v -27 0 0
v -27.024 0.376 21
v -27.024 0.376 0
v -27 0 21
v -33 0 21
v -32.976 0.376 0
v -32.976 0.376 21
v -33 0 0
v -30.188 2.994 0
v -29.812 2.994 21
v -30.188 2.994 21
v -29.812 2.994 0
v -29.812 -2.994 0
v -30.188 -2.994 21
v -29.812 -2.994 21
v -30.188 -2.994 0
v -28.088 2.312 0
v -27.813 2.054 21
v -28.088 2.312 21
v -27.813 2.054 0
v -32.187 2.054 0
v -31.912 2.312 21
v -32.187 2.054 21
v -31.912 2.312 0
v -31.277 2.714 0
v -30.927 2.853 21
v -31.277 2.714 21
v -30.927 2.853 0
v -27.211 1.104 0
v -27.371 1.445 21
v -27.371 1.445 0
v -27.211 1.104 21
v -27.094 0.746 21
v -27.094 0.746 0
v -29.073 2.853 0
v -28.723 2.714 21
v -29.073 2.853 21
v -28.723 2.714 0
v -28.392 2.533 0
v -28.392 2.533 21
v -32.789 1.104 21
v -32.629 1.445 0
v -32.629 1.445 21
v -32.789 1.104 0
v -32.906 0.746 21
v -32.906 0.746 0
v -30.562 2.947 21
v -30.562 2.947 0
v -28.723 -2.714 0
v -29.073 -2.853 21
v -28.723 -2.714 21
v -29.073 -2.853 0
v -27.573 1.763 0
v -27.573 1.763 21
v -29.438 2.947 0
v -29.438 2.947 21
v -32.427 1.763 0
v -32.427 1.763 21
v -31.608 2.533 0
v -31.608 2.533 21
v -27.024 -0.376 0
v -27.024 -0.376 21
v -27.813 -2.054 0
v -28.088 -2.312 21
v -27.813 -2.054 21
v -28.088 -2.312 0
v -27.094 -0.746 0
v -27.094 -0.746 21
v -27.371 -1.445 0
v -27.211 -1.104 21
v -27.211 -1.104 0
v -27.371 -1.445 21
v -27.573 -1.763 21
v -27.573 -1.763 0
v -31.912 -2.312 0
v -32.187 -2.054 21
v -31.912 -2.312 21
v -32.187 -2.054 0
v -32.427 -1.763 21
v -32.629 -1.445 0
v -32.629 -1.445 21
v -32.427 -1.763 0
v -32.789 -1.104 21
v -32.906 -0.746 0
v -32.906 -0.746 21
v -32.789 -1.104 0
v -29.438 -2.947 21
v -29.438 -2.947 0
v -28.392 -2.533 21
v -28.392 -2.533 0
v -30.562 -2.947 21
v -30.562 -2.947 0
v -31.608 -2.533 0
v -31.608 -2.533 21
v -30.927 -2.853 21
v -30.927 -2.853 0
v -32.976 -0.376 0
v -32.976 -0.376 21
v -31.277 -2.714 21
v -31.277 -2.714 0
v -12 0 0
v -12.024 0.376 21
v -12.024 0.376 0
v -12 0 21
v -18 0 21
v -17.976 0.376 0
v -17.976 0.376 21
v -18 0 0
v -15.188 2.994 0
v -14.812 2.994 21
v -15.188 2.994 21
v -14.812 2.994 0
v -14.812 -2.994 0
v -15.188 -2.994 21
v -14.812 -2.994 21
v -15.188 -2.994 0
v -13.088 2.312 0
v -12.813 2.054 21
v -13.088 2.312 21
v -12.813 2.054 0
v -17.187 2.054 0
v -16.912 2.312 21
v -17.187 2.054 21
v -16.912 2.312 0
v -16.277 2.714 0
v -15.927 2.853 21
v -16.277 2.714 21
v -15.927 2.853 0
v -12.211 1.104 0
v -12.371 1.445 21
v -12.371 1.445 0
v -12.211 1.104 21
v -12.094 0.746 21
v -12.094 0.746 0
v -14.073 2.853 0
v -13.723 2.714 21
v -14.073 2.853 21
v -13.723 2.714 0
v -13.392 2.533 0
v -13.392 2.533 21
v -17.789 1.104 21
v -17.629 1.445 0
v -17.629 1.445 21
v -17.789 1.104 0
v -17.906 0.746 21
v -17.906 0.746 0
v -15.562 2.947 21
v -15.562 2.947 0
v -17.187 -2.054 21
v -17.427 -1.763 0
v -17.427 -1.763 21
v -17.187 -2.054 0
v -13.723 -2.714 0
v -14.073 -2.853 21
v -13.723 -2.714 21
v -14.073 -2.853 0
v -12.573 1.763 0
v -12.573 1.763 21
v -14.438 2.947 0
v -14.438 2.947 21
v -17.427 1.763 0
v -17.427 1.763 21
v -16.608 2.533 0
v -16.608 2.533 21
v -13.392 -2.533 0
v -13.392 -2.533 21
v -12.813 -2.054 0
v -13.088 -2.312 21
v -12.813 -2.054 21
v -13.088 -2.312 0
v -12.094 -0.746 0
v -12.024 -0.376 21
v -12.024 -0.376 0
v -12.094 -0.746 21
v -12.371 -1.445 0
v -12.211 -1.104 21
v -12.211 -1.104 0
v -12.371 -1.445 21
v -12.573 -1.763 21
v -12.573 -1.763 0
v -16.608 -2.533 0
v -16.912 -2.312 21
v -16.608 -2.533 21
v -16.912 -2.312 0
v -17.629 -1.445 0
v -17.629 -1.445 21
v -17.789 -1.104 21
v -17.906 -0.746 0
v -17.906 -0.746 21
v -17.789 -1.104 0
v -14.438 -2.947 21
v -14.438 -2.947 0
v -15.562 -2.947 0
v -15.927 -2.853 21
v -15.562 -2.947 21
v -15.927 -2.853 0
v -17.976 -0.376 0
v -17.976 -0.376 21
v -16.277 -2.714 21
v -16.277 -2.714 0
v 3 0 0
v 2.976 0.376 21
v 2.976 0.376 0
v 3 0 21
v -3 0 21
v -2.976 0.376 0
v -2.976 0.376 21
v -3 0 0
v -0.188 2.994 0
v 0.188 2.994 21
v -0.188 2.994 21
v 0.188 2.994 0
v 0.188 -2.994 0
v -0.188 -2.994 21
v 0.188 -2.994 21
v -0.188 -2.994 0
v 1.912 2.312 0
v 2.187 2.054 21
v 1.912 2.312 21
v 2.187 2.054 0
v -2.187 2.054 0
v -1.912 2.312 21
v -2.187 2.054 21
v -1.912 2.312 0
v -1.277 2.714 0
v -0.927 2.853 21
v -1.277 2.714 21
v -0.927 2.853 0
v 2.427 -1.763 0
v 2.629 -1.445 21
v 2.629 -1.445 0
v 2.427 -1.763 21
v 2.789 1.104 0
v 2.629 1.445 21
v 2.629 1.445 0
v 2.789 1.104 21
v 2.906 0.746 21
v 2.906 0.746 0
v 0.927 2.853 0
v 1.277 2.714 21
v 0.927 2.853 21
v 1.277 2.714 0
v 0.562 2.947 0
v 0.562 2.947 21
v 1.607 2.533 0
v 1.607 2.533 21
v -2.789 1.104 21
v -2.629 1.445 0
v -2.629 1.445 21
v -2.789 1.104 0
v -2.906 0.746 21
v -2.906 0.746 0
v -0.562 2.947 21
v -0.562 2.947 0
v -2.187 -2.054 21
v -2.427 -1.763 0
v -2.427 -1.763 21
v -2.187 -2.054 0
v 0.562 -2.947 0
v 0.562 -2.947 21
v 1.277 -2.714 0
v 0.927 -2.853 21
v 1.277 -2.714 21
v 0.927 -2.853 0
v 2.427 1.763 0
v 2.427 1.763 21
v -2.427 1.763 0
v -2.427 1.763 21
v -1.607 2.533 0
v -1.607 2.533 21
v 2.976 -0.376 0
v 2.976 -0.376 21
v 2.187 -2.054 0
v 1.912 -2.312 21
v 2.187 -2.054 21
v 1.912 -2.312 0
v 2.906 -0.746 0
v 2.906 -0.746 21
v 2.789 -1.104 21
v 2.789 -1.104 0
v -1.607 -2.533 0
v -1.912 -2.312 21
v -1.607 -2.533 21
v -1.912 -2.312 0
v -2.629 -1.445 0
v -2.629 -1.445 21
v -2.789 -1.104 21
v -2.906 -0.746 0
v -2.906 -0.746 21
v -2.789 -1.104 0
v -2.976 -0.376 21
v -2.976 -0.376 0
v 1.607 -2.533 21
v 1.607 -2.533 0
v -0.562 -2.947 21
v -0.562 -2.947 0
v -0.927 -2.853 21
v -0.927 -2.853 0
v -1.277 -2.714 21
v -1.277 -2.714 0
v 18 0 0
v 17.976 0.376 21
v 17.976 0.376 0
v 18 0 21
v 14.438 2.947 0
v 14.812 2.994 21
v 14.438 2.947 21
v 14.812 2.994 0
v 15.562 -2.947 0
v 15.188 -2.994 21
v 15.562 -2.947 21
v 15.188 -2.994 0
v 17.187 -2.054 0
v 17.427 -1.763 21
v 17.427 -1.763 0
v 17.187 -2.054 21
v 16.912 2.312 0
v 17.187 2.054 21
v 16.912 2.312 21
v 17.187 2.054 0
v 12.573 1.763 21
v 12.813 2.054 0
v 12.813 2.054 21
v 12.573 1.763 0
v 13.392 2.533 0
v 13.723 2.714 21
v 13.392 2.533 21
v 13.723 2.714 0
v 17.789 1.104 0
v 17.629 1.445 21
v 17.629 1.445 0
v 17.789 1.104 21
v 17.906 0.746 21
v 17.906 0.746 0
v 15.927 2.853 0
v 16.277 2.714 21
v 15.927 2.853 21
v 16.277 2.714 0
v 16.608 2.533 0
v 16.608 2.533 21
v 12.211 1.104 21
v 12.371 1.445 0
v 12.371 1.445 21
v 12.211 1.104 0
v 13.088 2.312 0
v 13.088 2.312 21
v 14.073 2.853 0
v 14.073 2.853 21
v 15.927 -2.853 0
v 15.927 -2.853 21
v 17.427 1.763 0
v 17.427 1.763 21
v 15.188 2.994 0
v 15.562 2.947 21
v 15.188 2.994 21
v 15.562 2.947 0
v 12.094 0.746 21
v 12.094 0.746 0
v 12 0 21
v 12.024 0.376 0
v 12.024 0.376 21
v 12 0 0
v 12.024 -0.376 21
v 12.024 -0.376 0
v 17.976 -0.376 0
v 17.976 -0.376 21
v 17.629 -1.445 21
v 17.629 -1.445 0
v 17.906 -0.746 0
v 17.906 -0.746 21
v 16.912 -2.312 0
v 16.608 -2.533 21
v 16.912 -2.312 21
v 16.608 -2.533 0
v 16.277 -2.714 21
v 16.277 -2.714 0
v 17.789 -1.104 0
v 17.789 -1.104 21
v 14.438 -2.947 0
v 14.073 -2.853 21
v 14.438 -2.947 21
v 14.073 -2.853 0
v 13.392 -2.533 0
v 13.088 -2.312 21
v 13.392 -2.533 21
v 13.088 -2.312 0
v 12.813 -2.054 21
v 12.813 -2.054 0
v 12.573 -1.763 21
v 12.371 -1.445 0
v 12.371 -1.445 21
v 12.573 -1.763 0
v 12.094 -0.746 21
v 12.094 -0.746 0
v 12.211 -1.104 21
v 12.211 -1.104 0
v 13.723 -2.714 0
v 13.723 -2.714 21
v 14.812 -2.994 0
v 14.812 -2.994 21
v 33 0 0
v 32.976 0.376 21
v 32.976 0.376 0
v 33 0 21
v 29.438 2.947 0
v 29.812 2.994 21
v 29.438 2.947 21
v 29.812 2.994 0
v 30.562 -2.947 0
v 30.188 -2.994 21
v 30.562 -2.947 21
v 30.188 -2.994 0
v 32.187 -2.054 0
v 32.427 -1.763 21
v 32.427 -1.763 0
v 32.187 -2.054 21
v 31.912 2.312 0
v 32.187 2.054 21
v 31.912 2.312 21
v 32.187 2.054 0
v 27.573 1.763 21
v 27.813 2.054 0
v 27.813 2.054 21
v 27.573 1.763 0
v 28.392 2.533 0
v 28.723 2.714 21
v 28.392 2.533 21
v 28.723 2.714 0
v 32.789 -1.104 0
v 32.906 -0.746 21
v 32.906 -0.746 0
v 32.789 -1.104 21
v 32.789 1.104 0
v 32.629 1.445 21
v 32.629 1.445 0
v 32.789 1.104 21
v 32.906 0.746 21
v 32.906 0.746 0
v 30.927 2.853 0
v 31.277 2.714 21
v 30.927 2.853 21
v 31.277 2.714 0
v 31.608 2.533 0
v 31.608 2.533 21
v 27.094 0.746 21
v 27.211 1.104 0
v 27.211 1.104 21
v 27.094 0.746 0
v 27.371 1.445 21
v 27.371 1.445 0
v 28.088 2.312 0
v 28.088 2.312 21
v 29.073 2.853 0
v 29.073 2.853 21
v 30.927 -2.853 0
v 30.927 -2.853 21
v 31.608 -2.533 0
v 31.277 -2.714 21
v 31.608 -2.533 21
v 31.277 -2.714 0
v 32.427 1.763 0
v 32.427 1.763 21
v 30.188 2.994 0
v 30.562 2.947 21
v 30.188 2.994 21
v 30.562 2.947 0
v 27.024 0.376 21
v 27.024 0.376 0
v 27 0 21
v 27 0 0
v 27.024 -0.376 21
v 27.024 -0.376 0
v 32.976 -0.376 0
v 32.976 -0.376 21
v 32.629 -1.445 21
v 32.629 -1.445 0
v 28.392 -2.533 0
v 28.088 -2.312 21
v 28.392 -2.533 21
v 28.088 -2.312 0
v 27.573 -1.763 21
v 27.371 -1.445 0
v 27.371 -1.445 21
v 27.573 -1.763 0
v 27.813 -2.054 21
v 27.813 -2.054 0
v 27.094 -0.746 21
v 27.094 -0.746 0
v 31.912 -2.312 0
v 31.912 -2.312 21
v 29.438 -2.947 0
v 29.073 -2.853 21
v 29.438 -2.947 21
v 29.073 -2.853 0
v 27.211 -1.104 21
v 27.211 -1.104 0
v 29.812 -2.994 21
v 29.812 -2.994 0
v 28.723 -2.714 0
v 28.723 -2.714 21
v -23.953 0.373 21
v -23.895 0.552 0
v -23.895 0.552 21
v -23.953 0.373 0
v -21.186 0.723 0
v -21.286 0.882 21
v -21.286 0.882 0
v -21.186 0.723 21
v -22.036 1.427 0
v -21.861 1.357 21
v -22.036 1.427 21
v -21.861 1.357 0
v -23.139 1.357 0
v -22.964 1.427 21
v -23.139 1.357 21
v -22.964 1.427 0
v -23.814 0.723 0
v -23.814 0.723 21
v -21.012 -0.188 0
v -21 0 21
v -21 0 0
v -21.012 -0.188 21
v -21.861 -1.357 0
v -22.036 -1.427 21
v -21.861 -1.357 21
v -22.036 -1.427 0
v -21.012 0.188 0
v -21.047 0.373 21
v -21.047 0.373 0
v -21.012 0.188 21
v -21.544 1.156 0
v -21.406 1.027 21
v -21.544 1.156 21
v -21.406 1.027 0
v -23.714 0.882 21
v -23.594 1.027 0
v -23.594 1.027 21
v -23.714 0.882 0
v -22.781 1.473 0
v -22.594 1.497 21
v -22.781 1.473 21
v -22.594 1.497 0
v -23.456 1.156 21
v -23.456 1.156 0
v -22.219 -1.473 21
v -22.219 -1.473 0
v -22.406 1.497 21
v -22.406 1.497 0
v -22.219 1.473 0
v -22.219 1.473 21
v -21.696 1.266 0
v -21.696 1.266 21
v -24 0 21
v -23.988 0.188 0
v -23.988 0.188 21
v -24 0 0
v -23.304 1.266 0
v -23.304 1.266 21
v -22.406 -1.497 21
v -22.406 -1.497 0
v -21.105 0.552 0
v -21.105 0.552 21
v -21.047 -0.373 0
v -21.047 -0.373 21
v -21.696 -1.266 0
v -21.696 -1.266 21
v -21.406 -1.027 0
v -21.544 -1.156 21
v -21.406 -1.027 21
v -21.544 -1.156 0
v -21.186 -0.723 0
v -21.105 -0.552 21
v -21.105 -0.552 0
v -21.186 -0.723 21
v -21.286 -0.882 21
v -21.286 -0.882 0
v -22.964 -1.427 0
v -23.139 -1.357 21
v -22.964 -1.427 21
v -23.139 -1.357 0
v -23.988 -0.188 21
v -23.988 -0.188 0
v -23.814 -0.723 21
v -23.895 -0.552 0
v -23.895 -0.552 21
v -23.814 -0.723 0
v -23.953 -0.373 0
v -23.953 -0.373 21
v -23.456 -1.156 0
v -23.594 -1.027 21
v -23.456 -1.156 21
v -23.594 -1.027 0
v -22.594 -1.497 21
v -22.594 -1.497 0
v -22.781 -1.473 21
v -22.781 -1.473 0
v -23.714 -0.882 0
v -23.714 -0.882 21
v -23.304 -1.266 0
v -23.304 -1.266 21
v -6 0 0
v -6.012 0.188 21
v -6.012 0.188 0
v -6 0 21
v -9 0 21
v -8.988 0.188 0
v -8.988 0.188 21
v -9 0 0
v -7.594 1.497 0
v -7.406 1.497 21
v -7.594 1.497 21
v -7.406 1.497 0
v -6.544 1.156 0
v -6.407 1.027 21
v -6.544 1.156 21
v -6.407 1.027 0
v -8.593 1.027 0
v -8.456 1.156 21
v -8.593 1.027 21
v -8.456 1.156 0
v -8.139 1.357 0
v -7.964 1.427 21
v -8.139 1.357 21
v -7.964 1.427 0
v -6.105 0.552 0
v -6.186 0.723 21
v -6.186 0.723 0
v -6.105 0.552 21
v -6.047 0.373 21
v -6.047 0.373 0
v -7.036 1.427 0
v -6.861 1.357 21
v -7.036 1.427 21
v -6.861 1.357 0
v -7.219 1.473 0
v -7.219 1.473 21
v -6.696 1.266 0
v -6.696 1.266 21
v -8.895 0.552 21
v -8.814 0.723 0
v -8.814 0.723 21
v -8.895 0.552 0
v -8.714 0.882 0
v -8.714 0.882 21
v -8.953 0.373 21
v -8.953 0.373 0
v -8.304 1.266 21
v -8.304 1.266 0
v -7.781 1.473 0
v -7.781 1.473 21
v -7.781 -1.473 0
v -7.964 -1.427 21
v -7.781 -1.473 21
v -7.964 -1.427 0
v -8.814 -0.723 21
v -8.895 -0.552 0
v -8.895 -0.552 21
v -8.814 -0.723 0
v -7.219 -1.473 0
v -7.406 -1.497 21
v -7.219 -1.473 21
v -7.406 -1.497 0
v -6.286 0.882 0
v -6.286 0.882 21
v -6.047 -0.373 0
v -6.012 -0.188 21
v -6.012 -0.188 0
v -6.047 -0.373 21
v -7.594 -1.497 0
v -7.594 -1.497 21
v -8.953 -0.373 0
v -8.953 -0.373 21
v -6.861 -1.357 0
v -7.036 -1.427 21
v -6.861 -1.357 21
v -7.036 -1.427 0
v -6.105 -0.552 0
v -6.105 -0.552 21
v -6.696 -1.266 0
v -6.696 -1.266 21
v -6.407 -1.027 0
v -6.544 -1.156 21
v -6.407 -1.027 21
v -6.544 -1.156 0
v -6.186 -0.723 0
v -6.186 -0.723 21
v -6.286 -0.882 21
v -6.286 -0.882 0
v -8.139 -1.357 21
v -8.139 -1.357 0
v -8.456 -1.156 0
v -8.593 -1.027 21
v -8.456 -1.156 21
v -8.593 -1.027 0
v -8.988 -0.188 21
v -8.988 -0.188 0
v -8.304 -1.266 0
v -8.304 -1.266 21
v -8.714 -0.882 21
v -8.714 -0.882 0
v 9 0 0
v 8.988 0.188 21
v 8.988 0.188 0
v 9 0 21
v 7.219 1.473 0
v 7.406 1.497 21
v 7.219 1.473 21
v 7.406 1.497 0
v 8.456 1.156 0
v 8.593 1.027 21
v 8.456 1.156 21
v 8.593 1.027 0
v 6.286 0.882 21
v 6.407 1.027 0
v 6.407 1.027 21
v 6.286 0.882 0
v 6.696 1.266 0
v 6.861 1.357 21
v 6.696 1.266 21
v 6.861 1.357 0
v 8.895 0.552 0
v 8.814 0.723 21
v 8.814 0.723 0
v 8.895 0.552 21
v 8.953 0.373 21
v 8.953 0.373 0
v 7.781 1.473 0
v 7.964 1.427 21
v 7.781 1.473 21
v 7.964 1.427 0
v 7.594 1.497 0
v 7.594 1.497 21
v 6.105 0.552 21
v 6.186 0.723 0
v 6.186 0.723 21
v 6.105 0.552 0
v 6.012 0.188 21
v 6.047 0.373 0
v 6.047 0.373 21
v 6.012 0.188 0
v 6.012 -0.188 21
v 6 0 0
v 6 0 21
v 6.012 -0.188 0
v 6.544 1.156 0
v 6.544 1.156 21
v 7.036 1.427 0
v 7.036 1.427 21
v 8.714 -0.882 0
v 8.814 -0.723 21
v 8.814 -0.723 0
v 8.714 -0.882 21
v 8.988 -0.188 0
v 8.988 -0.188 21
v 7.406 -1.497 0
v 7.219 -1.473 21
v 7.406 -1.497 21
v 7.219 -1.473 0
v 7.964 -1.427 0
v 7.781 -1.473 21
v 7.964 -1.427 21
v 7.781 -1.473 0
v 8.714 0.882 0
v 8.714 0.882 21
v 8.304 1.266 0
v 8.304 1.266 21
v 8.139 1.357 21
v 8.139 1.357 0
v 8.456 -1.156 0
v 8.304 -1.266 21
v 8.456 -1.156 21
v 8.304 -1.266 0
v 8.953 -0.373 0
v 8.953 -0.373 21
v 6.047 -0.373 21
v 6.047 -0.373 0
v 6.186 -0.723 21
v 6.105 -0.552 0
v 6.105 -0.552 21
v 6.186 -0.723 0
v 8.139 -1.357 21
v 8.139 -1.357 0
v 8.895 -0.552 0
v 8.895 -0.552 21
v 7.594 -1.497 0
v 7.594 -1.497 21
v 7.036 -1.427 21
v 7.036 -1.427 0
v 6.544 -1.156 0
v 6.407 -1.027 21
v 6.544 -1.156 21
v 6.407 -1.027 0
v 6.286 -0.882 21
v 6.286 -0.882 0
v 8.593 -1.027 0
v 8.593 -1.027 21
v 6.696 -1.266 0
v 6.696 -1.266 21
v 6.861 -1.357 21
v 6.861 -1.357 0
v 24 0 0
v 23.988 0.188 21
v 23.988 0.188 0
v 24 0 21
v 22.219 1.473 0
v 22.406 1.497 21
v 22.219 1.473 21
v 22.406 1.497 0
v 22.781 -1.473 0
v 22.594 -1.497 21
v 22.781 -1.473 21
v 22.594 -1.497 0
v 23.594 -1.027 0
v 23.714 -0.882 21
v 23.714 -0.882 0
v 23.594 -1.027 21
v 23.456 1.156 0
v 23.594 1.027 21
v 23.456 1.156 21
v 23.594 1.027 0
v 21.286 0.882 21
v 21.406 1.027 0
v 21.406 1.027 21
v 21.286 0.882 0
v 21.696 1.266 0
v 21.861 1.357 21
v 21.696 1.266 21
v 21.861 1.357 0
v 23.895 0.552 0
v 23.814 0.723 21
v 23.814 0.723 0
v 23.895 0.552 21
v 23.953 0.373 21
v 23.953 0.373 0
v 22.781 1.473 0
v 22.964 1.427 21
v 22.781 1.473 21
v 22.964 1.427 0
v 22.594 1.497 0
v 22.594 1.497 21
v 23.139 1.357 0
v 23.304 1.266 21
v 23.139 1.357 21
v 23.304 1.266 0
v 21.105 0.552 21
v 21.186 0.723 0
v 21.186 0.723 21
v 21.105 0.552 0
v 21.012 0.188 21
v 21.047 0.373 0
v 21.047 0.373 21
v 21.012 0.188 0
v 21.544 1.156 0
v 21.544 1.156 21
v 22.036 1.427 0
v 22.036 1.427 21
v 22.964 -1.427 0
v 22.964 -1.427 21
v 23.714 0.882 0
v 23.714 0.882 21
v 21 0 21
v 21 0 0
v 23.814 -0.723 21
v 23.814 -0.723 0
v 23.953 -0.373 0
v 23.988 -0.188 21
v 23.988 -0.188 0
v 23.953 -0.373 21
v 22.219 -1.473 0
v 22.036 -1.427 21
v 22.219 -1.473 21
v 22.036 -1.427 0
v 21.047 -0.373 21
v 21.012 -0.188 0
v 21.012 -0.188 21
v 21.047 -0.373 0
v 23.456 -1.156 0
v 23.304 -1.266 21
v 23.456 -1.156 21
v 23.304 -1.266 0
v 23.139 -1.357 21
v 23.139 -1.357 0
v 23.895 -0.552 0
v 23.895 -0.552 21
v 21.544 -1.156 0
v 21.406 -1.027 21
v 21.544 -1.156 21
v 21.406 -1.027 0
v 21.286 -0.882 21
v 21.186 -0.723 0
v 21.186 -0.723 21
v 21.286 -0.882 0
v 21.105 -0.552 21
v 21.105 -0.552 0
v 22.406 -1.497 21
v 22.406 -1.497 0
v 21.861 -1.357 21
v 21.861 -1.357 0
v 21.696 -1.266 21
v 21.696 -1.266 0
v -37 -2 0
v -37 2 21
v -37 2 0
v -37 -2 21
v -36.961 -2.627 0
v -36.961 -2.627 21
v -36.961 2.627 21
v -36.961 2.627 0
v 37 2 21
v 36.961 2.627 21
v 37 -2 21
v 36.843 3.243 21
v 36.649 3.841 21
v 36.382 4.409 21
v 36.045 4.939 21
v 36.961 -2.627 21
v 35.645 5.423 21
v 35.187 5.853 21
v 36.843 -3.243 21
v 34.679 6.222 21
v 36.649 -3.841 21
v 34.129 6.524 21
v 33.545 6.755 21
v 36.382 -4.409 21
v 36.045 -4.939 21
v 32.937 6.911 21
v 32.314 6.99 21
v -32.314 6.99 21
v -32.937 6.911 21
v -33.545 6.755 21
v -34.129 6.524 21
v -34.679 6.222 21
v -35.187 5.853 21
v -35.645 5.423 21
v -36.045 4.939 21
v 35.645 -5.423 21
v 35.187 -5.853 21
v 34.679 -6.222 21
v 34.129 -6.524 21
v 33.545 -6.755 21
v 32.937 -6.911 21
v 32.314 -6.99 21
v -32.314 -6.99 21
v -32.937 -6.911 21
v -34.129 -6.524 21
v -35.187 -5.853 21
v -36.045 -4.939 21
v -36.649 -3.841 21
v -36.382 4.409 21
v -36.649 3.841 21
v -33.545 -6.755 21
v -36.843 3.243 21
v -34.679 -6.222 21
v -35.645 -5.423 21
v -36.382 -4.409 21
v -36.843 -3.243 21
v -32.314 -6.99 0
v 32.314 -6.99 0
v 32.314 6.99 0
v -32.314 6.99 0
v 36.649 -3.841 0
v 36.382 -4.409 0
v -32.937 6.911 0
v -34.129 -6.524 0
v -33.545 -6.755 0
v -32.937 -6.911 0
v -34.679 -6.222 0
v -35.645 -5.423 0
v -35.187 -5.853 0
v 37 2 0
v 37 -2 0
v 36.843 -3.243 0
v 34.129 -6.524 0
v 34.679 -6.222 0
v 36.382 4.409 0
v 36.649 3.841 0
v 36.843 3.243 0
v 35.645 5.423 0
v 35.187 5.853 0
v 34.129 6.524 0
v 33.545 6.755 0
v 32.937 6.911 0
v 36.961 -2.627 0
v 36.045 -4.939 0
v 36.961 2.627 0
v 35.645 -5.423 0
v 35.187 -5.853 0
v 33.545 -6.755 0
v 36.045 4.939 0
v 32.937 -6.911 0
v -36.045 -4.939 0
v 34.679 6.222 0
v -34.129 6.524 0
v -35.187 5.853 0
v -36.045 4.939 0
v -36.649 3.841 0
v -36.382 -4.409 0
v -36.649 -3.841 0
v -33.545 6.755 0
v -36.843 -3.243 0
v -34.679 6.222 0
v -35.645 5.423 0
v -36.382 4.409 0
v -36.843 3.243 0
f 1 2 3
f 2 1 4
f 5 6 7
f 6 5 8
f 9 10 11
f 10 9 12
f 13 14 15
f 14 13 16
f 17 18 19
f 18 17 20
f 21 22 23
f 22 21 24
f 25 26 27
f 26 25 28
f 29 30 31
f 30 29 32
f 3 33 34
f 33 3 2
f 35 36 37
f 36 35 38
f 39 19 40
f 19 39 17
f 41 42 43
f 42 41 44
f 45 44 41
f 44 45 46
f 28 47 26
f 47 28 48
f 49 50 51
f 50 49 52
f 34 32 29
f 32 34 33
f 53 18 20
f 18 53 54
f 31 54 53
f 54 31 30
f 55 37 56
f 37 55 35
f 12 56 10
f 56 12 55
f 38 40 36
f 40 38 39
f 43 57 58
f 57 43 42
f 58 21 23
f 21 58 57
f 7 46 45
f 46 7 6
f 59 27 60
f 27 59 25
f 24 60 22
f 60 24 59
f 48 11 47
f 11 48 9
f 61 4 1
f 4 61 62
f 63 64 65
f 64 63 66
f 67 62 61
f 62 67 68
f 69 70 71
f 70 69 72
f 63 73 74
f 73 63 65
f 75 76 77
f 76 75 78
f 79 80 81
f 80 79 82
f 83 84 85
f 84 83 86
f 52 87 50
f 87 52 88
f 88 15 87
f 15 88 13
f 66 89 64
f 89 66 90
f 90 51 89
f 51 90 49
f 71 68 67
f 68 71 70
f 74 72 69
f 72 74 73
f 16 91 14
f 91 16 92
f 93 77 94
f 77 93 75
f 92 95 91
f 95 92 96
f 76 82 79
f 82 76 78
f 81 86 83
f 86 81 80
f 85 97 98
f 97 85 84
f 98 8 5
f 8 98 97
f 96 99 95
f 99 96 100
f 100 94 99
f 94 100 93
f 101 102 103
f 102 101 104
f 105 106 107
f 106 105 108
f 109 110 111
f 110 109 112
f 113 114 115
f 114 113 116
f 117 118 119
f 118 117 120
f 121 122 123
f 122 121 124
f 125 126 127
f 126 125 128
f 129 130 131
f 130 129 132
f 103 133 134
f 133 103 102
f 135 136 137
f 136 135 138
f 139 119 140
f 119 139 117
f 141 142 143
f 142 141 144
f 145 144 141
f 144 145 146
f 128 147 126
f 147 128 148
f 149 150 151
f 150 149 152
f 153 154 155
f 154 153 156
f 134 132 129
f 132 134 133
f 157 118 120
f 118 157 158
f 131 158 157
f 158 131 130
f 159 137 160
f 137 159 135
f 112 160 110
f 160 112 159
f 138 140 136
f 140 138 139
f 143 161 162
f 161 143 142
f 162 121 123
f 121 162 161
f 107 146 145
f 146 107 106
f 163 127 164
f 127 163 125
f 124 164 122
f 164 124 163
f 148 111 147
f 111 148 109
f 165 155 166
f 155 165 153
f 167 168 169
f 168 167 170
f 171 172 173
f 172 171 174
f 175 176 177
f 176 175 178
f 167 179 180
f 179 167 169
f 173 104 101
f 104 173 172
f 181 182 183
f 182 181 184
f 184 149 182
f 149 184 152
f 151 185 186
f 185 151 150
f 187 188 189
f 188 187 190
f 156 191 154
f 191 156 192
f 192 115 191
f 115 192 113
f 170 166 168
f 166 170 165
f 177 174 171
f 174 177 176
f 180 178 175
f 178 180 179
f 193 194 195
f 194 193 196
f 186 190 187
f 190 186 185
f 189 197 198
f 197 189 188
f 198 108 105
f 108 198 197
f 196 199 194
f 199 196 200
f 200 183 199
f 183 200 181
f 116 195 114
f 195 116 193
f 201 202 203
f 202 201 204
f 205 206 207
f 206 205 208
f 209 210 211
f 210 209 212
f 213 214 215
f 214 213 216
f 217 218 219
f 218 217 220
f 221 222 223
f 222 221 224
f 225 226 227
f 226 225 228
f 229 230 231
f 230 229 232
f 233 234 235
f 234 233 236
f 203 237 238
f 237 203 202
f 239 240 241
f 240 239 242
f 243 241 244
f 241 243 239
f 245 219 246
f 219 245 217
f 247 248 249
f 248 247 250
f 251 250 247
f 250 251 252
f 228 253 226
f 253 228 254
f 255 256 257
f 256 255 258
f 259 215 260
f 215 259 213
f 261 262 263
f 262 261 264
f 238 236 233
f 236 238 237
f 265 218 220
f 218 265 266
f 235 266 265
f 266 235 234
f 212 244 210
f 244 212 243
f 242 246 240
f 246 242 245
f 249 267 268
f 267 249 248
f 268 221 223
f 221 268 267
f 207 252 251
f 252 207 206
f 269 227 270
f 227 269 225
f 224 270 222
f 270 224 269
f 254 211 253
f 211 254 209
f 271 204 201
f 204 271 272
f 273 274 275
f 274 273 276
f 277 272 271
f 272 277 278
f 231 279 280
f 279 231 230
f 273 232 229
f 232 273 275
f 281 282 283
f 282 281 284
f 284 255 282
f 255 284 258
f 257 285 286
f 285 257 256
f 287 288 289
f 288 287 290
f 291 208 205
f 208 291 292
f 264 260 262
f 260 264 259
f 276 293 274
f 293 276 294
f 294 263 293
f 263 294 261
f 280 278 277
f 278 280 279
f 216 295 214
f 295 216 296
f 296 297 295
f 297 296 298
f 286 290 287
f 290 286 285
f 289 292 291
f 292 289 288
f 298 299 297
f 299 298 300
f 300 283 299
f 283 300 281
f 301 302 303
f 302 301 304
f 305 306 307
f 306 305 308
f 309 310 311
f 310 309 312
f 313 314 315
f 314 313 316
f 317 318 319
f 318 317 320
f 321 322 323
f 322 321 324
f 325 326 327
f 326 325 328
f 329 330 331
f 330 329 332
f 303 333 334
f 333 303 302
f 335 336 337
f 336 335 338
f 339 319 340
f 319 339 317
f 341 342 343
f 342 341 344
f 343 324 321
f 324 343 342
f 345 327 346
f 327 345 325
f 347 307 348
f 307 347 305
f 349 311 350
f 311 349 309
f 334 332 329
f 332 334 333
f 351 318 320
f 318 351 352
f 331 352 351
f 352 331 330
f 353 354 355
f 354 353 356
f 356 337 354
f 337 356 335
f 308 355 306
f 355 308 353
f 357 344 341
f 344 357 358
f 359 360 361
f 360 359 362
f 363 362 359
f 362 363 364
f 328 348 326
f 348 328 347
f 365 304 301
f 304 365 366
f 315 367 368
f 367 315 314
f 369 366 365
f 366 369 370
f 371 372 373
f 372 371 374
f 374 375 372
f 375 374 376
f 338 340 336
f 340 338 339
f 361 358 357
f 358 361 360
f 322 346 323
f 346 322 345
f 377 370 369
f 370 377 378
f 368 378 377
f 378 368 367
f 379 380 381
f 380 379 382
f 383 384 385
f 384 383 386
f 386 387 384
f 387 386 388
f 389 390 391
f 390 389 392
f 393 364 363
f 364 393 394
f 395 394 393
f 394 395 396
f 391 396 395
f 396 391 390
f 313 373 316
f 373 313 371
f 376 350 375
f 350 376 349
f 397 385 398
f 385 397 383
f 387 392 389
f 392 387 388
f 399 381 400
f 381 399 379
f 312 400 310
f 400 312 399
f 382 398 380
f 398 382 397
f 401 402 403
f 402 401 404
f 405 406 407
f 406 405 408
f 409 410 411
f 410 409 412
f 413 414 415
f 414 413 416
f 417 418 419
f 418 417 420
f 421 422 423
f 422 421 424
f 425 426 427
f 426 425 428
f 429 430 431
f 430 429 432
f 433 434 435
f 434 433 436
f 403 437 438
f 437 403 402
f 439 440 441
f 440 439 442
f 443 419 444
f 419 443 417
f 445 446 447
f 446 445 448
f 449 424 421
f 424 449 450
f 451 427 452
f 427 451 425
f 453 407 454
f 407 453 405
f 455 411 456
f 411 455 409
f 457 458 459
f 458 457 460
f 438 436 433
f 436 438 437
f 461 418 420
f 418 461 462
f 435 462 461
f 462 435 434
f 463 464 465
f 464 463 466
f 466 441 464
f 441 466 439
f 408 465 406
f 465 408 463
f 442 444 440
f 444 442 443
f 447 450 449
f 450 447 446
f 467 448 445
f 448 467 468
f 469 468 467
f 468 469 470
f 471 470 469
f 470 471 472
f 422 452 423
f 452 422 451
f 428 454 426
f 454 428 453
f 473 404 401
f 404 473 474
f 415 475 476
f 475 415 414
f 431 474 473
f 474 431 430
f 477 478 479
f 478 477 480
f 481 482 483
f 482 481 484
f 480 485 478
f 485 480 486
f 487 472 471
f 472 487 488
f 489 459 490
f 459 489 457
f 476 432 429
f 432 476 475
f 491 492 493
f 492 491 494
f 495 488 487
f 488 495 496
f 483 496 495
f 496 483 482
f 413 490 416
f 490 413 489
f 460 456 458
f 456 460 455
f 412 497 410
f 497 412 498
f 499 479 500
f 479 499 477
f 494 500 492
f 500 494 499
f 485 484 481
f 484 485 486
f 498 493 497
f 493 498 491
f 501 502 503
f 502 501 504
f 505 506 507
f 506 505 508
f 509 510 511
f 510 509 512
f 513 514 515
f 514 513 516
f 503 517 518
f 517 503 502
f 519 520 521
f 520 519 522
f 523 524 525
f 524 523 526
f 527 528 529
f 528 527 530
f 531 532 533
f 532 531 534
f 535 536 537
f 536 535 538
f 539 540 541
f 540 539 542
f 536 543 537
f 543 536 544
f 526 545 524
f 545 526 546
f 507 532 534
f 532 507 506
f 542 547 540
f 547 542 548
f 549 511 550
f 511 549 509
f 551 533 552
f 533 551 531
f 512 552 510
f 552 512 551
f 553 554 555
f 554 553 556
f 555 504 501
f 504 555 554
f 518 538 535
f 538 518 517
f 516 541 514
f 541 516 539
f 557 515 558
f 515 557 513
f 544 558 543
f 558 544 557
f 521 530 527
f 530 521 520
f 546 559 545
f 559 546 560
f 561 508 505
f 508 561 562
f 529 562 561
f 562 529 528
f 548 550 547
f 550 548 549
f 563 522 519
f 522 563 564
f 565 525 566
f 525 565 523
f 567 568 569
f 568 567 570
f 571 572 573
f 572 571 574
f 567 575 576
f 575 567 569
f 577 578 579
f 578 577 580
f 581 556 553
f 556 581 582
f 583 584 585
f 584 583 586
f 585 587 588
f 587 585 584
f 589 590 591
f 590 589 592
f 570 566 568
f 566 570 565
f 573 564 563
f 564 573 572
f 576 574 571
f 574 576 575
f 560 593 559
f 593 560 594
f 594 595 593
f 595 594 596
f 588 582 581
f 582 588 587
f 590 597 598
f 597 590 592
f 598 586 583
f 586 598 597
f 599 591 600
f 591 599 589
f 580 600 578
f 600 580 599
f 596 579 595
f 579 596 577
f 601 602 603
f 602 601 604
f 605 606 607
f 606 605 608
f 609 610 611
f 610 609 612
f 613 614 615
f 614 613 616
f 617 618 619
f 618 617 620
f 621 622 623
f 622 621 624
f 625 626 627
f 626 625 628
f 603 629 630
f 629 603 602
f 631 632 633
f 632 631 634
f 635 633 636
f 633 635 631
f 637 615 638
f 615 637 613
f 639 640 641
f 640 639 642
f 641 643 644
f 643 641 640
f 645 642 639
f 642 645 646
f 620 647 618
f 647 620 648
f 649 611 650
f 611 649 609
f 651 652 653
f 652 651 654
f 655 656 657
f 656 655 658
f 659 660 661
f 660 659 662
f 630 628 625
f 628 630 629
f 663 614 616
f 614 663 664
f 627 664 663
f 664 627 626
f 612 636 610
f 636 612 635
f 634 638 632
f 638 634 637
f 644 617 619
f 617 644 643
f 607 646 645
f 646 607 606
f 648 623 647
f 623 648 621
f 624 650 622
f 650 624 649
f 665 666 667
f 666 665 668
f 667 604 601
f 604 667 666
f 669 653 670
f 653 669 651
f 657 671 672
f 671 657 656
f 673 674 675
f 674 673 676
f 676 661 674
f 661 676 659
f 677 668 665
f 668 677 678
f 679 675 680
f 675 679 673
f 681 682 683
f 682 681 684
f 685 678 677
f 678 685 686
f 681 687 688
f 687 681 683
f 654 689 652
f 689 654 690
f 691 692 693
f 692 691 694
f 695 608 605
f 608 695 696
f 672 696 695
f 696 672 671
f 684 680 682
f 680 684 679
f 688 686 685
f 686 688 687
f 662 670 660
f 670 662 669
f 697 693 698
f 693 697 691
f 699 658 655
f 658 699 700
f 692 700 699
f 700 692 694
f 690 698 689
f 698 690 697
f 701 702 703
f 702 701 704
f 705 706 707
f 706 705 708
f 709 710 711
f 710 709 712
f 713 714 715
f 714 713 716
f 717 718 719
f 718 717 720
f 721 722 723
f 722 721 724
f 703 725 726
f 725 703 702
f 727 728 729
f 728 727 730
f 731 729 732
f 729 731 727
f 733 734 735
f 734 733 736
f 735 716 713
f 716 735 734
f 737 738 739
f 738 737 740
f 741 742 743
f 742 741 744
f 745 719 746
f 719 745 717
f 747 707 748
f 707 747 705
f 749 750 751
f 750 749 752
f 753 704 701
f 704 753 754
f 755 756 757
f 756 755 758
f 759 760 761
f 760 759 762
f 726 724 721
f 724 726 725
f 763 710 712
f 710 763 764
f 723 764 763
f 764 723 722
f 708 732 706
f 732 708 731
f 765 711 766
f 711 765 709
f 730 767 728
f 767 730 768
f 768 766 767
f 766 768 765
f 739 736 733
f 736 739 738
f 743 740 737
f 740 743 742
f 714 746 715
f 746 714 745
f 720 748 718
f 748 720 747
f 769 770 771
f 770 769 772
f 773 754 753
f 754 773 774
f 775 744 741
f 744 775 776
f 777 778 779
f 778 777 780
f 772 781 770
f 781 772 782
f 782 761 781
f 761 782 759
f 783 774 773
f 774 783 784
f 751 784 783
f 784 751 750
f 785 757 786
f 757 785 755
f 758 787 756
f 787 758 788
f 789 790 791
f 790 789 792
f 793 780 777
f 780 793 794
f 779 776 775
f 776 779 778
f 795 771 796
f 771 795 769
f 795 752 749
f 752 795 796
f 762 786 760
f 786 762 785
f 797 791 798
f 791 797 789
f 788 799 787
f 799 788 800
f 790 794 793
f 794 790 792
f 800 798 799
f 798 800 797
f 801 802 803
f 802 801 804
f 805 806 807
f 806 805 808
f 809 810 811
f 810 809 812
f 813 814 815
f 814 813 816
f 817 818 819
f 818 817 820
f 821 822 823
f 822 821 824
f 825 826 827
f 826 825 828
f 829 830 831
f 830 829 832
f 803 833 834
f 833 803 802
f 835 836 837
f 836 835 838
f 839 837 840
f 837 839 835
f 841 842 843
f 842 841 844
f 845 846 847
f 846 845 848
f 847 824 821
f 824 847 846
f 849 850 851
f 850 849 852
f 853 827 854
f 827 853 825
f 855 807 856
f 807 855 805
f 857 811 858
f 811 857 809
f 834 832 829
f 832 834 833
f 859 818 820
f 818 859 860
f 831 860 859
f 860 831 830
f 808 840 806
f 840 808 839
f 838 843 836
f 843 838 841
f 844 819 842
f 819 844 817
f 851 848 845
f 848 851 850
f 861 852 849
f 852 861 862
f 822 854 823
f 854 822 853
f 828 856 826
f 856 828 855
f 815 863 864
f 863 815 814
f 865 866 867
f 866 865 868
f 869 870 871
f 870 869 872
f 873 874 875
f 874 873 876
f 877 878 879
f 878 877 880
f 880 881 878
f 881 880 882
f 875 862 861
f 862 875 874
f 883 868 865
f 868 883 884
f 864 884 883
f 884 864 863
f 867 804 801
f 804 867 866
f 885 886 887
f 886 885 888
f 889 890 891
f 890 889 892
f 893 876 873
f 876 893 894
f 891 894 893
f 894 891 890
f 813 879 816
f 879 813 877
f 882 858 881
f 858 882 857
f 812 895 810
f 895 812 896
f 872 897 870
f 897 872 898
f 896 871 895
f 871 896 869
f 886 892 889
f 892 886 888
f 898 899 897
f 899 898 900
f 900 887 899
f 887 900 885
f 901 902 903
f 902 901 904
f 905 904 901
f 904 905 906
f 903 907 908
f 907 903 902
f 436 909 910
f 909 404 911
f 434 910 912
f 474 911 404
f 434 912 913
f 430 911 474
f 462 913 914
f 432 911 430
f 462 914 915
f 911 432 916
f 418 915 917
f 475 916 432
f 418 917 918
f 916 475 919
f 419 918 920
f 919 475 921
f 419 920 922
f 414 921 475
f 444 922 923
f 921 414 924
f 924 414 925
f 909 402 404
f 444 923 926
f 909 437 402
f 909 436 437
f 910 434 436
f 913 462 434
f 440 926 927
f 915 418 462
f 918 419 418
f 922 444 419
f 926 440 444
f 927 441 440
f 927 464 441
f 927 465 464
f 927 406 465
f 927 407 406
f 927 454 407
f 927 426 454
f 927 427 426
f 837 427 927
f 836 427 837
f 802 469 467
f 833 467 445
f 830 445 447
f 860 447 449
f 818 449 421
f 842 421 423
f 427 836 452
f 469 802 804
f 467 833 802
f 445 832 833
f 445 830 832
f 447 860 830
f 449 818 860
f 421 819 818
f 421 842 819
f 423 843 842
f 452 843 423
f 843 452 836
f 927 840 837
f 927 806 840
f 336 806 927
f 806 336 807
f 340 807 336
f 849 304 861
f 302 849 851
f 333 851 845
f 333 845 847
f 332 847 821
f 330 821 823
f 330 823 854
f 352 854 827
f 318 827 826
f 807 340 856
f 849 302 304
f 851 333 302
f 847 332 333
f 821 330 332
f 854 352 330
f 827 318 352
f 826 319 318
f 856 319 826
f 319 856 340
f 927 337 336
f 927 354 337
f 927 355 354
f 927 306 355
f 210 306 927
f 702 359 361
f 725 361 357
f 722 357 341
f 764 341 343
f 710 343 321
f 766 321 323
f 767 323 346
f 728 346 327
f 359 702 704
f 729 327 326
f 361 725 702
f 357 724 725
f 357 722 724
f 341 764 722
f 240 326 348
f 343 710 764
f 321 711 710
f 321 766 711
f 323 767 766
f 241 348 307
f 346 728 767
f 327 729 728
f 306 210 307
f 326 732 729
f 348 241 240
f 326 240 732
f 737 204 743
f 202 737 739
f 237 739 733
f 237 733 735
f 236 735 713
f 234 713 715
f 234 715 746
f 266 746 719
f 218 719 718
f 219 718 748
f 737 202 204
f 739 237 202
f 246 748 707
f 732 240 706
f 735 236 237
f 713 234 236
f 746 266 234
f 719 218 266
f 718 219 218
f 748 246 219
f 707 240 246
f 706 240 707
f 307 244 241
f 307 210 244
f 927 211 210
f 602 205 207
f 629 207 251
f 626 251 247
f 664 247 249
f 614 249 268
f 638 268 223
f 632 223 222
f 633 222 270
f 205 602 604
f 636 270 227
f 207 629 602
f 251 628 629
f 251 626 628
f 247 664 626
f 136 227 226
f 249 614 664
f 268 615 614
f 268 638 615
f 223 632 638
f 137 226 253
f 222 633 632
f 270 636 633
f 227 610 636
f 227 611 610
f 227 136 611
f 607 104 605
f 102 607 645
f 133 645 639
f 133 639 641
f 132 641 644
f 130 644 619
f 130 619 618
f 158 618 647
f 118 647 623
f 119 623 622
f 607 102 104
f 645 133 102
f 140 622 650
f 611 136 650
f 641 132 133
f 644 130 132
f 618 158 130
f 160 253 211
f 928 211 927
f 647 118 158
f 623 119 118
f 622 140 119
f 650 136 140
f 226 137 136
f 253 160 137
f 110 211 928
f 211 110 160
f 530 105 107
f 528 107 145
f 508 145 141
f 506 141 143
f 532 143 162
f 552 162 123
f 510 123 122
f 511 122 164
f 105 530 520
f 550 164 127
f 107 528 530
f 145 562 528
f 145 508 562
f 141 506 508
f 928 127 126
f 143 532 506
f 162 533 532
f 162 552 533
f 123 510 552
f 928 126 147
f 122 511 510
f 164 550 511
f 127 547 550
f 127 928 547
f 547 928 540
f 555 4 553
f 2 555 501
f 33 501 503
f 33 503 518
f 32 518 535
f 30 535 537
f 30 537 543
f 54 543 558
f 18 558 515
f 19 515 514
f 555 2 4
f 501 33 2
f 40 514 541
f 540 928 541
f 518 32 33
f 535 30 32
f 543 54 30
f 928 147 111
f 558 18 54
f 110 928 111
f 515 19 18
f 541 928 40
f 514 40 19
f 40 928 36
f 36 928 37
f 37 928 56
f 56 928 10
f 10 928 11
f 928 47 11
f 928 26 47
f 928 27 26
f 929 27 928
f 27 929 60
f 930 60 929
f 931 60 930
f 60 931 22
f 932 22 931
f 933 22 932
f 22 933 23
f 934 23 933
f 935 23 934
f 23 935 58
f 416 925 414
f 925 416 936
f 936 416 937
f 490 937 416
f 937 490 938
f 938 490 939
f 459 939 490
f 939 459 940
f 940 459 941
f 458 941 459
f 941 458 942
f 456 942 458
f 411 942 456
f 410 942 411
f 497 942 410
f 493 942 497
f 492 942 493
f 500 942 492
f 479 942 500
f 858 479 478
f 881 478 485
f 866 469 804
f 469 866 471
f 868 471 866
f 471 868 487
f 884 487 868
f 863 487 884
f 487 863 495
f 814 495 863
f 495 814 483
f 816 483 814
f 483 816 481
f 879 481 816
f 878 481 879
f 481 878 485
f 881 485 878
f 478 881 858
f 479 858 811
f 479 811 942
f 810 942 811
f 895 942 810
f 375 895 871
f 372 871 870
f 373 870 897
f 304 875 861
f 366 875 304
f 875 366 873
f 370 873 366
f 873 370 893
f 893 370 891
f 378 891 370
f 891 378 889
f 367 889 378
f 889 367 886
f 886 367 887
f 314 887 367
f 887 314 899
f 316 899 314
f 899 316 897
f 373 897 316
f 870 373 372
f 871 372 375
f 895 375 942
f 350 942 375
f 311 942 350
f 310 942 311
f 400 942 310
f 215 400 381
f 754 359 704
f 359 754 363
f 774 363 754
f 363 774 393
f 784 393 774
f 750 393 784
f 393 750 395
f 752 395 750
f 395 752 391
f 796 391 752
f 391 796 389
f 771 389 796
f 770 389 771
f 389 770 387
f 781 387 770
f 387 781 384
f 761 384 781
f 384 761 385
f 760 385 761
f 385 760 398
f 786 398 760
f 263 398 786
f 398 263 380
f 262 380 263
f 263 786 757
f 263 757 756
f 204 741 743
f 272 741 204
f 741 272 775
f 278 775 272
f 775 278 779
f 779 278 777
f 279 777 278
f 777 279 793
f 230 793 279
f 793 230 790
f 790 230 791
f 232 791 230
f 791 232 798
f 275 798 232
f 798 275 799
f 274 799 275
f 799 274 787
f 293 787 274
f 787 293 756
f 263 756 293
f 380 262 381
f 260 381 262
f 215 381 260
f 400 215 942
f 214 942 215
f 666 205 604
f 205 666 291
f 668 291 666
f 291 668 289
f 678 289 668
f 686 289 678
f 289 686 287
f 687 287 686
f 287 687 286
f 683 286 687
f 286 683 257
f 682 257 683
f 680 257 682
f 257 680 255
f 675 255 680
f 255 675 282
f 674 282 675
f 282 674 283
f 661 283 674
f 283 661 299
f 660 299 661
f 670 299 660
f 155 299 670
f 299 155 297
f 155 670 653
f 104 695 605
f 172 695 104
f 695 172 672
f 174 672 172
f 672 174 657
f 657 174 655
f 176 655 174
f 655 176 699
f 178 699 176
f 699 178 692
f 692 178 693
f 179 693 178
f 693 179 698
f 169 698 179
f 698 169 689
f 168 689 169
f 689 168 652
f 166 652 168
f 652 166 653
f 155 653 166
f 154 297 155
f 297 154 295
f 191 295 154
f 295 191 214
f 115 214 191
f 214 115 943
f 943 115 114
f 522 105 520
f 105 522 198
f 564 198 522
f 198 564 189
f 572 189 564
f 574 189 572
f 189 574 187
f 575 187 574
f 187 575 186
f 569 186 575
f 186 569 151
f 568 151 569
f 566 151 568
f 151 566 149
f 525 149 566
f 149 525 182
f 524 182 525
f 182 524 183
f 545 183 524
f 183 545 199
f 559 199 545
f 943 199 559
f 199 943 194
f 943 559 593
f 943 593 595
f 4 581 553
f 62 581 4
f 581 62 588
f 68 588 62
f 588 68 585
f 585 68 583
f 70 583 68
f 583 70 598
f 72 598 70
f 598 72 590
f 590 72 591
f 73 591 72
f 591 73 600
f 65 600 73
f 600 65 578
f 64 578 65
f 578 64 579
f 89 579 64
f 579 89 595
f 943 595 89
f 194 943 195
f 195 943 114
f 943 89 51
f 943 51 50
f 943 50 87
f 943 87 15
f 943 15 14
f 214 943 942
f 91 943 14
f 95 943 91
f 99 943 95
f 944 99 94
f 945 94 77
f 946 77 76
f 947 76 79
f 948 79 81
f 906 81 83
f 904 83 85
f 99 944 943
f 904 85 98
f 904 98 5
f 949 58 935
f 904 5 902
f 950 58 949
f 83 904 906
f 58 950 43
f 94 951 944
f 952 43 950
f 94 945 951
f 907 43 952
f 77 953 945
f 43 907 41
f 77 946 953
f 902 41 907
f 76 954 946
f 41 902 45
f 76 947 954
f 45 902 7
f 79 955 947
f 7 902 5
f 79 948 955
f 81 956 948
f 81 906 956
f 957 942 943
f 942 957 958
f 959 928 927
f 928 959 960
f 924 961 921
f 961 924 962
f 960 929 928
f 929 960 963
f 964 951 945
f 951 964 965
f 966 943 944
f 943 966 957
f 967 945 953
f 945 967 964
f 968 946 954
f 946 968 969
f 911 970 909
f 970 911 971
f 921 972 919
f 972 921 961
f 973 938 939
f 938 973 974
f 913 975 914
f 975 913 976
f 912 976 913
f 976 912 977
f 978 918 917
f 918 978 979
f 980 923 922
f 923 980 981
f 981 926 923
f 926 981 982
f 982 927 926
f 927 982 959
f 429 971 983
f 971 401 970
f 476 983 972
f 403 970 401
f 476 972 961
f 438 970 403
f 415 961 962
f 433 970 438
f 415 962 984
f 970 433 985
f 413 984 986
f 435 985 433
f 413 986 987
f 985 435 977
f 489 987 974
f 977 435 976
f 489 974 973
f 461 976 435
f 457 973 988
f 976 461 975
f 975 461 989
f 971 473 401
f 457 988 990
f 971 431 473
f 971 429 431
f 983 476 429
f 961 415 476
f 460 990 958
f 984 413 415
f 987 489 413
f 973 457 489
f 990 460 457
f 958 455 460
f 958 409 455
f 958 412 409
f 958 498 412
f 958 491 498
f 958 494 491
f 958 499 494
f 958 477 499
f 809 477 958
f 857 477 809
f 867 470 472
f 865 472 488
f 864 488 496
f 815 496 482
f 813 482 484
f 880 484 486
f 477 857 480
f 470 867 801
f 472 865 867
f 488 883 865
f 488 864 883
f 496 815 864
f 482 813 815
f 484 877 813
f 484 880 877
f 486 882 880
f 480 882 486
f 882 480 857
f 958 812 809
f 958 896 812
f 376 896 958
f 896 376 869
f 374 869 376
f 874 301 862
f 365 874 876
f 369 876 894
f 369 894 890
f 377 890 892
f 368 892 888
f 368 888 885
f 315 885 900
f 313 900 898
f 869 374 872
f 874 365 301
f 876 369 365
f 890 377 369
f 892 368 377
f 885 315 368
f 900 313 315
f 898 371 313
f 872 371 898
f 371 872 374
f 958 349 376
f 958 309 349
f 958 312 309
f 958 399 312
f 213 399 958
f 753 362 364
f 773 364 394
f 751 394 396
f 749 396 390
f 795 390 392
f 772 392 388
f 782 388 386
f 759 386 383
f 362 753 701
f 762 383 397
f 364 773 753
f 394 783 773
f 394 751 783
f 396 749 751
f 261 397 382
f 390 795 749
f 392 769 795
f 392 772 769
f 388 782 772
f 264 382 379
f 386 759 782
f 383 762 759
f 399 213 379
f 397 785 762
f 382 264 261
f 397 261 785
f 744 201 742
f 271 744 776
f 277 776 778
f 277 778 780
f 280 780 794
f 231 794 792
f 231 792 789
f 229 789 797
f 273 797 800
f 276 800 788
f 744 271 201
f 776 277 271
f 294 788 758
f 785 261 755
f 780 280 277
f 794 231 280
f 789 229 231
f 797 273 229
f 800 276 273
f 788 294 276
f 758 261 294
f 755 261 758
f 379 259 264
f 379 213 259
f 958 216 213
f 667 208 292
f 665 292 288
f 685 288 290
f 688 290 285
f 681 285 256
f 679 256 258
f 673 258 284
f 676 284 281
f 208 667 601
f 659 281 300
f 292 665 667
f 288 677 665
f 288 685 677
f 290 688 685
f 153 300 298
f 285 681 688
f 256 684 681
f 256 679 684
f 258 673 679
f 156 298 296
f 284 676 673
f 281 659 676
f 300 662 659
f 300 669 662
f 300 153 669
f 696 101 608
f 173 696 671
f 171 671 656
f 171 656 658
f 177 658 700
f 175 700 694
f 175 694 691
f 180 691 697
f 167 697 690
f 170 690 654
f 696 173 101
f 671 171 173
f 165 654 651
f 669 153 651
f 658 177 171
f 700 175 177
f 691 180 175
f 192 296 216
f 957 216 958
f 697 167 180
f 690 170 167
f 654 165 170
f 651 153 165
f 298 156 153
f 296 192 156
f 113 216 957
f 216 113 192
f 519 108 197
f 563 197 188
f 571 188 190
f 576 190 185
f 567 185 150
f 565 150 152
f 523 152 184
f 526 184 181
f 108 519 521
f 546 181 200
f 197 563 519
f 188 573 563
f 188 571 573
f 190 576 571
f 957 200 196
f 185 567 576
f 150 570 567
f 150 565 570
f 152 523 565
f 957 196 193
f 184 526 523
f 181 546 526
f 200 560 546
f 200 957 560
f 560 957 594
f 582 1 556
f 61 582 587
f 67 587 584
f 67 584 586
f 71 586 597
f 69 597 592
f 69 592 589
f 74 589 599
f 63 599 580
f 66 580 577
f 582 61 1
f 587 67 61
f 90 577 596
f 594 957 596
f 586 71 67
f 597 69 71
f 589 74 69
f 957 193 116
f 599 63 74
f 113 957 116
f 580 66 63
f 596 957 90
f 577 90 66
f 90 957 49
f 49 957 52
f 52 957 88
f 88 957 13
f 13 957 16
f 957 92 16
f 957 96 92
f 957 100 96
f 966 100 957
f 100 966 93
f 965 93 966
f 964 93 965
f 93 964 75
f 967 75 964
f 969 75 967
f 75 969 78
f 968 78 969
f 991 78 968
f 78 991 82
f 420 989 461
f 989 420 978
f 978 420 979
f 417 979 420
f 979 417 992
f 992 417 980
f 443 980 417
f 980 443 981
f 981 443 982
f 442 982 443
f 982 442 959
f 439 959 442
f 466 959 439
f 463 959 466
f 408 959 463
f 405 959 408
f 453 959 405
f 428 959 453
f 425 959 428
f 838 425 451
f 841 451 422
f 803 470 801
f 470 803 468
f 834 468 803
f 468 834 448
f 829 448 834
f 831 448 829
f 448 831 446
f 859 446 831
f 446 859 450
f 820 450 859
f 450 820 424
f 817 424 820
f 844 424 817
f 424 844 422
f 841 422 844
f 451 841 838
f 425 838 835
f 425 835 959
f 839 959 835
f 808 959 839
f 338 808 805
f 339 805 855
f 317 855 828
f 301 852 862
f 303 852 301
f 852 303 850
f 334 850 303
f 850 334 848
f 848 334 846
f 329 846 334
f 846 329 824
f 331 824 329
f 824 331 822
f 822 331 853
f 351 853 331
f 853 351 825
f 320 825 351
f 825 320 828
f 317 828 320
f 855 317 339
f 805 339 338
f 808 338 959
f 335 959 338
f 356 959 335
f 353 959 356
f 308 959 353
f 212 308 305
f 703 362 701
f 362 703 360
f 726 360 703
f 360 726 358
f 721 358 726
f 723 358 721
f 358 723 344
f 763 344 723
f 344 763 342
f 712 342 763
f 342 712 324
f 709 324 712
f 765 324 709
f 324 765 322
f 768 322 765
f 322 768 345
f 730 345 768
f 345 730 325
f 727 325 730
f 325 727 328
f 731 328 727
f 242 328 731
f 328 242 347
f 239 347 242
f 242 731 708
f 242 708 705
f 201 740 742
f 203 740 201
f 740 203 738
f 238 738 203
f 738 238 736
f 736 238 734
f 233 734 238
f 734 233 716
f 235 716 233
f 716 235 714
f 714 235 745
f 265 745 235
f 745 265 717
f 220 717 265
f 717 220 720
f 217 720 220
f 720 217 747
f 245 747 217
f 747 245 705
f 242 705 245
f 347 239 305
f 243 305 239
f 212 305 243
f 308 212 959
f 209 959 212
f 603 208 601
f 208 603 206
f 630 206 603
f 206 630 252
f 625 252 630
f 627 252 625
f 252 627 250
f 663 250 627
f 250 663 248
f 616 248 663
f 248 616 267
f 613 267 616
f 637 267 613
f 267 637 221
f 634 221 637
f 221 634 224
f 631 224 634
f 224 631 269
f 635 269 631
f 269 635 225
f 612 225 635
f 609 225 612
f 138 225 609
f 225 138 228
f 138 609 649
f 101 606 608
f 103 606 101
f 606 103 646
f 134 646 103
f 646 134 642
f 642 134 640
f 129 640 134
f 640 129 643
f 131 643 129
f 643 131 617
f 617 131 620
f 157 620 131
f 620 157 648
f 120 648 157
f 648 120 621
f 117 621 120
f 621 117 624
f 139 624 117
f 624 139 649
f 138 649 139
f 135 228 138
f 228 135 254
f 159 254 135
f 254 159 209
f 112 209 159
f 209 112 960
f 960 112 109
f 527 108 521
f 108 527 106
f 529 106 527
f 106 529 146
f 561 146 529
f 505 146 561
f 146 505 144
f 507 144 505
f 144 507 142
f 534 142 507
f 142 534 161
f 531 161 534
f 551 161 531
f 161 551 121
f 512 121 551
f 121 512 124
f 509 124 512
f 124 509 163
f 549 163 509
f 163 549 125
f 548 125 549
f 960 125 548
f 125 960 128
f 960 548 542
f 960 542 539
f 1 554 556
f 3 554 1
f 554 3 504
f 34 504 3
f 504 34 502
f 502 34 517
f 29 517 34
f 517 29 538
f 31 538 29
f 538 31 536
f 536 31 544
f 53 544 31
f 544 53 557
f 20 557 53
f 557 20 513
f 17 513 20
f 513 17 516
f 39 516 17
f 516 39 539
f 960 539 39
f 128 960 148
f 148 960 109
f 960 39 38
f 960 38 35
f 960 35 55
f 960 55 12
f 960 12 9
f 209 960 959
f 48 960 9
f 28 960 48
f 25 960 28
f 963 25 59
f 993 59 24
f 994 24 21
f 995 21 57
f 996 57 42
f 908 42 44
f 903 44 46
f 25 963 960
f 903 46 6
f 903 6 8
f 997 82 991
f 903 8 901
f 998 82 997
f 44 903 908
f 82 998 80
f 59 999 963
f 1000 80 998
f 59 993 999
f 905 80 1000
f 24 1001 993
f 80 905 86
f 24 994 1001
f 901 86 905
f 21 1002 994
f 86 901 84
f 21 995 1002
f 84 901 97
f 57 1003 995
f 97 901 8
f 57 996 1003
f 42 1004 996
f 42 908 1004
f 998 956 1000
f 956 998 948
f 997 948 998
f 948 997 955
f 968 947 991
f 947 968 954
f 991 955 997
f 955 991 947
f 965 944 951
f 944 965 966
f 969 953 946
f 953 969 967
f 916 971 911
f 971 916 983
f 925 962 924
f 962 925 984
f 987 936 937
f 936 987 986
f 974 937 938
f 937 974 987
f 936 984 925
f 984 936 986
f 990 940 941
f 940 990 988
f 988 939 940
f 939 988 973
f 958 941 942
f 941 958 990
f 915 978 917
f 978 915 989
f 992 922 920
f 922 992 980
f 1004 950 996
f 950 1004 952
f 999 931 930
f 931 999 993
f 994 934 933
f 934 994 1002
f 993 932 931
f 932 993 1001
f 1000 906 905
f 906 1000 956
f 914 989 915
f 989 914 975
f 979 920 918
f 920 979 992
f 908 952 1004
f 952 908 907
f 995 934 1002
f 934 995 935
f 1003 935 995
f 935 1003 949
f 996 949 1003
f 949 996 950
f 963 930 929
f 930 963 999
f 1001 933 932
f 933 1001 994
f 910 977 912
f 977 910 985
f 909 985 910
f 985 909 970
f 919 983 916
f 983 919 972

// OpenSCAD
$fn = 50;


difference() {
	union() {
		hull() {
			translate(v = [-32.0000000000, 2.0000000000, 0]) {
				cylinder(h = 21, r = 5);
			}
			translate(v = [32.0000000000, 2.0000000000, 0]) {
				cylinder(h = 21, r = 5);
			}
			translate(v = [-32.0000000000, -2.0000000000, 0]) {
				cylinder(h = 21, r = 5);
			}
			translate(v = [32.0000000000, -2.0000000000, 0]) {
				cylinder(h = 21, r = 5);
			}
		}
	}
	union() {
		translate(v = [-30.0000000000, 0.0000000000, 0]) {
			translate(v = [0, 0, -100]) {
				cylinder(h = 200, r = 3.0000000000);
			}
		}
		translate(v = [-15.0000000000, 0.0000000000, 0]) {
			translate(v = [0, 0, -100]) {
				cylinder(h = 200, r = 3.0000000000);
			}
		}
		translate(v = [0, 0, -100]) {
			cylinder(h = 200, r = 3.0000000000);
		}
		translate(v = [15.0000000000, 0.0000000000, 0]) {
			translate(v = [0, 0, -100]) {
				cylinder(h = 200, r = 3.0000000000);
			}
		}
		translate(v = [30.0000000000, 0.0000000000, 0]) {
			translate(v = [0, 0, -100]) {
				cylinder(h = 200, r = 3.0000000000);
			}
		}
		translate(v = [-30.0000000000, 0.0000000000, 0]) {
			translate(v = [0, 0, -100]) {
				cylinder(h = 200, r = 1.5000000000);
			}
		}
		translate(v = [-22.5000000000, 0.0000000000, 0]) {
			translate(v = [0, 0, -100]) {
				cylinder(h = 200, r = 1.5000000000);
			}
		}
		translate(v = [-15.0000000000, 0.0000000000, 0]) {
			translate(v = [0, 0, -100]) {
				cylinder(h = 200, r = 1.5000000000);
			}
		}
		translate(v = [-7.5000000000, 0.0000000000, 0]) {
			translate(v = [0, 0, -100]) {
				cylinder(h = 200, r = 1.5000000000);
			}
		}
		translate(v = [0, 0, -100]) {
			cylinder(h = 200, r = 1.5000000000);
		}
		translate(v = [7.5000000000, 0.0000000000, 0]) {
			translate(v = [0, 0, -100]) {
				cylinder(h = 200, r = 1.5000000000);
			}
		}
		translate(v = [15.0000000000, 0.0000000000, 0]) {
			translate(v = [0, 0, -100]) {
				cylinder(h = 200, r = 1.5000000000);
			}
		}
		translate(v = [22.5000000000, 0.0000000000, 0]) {
			translate(v = [0, 0, -100]) {
				cylinder(h = 200, r = 1.5000000000);
			}
		}
		translate(v = [30.0000000000, 0.0000000000, 0]) {
			translate(v = [0, 0, -100]) {
				cylinder(h = 200, r = 1.5000000000);
			}
		}
	}
}
